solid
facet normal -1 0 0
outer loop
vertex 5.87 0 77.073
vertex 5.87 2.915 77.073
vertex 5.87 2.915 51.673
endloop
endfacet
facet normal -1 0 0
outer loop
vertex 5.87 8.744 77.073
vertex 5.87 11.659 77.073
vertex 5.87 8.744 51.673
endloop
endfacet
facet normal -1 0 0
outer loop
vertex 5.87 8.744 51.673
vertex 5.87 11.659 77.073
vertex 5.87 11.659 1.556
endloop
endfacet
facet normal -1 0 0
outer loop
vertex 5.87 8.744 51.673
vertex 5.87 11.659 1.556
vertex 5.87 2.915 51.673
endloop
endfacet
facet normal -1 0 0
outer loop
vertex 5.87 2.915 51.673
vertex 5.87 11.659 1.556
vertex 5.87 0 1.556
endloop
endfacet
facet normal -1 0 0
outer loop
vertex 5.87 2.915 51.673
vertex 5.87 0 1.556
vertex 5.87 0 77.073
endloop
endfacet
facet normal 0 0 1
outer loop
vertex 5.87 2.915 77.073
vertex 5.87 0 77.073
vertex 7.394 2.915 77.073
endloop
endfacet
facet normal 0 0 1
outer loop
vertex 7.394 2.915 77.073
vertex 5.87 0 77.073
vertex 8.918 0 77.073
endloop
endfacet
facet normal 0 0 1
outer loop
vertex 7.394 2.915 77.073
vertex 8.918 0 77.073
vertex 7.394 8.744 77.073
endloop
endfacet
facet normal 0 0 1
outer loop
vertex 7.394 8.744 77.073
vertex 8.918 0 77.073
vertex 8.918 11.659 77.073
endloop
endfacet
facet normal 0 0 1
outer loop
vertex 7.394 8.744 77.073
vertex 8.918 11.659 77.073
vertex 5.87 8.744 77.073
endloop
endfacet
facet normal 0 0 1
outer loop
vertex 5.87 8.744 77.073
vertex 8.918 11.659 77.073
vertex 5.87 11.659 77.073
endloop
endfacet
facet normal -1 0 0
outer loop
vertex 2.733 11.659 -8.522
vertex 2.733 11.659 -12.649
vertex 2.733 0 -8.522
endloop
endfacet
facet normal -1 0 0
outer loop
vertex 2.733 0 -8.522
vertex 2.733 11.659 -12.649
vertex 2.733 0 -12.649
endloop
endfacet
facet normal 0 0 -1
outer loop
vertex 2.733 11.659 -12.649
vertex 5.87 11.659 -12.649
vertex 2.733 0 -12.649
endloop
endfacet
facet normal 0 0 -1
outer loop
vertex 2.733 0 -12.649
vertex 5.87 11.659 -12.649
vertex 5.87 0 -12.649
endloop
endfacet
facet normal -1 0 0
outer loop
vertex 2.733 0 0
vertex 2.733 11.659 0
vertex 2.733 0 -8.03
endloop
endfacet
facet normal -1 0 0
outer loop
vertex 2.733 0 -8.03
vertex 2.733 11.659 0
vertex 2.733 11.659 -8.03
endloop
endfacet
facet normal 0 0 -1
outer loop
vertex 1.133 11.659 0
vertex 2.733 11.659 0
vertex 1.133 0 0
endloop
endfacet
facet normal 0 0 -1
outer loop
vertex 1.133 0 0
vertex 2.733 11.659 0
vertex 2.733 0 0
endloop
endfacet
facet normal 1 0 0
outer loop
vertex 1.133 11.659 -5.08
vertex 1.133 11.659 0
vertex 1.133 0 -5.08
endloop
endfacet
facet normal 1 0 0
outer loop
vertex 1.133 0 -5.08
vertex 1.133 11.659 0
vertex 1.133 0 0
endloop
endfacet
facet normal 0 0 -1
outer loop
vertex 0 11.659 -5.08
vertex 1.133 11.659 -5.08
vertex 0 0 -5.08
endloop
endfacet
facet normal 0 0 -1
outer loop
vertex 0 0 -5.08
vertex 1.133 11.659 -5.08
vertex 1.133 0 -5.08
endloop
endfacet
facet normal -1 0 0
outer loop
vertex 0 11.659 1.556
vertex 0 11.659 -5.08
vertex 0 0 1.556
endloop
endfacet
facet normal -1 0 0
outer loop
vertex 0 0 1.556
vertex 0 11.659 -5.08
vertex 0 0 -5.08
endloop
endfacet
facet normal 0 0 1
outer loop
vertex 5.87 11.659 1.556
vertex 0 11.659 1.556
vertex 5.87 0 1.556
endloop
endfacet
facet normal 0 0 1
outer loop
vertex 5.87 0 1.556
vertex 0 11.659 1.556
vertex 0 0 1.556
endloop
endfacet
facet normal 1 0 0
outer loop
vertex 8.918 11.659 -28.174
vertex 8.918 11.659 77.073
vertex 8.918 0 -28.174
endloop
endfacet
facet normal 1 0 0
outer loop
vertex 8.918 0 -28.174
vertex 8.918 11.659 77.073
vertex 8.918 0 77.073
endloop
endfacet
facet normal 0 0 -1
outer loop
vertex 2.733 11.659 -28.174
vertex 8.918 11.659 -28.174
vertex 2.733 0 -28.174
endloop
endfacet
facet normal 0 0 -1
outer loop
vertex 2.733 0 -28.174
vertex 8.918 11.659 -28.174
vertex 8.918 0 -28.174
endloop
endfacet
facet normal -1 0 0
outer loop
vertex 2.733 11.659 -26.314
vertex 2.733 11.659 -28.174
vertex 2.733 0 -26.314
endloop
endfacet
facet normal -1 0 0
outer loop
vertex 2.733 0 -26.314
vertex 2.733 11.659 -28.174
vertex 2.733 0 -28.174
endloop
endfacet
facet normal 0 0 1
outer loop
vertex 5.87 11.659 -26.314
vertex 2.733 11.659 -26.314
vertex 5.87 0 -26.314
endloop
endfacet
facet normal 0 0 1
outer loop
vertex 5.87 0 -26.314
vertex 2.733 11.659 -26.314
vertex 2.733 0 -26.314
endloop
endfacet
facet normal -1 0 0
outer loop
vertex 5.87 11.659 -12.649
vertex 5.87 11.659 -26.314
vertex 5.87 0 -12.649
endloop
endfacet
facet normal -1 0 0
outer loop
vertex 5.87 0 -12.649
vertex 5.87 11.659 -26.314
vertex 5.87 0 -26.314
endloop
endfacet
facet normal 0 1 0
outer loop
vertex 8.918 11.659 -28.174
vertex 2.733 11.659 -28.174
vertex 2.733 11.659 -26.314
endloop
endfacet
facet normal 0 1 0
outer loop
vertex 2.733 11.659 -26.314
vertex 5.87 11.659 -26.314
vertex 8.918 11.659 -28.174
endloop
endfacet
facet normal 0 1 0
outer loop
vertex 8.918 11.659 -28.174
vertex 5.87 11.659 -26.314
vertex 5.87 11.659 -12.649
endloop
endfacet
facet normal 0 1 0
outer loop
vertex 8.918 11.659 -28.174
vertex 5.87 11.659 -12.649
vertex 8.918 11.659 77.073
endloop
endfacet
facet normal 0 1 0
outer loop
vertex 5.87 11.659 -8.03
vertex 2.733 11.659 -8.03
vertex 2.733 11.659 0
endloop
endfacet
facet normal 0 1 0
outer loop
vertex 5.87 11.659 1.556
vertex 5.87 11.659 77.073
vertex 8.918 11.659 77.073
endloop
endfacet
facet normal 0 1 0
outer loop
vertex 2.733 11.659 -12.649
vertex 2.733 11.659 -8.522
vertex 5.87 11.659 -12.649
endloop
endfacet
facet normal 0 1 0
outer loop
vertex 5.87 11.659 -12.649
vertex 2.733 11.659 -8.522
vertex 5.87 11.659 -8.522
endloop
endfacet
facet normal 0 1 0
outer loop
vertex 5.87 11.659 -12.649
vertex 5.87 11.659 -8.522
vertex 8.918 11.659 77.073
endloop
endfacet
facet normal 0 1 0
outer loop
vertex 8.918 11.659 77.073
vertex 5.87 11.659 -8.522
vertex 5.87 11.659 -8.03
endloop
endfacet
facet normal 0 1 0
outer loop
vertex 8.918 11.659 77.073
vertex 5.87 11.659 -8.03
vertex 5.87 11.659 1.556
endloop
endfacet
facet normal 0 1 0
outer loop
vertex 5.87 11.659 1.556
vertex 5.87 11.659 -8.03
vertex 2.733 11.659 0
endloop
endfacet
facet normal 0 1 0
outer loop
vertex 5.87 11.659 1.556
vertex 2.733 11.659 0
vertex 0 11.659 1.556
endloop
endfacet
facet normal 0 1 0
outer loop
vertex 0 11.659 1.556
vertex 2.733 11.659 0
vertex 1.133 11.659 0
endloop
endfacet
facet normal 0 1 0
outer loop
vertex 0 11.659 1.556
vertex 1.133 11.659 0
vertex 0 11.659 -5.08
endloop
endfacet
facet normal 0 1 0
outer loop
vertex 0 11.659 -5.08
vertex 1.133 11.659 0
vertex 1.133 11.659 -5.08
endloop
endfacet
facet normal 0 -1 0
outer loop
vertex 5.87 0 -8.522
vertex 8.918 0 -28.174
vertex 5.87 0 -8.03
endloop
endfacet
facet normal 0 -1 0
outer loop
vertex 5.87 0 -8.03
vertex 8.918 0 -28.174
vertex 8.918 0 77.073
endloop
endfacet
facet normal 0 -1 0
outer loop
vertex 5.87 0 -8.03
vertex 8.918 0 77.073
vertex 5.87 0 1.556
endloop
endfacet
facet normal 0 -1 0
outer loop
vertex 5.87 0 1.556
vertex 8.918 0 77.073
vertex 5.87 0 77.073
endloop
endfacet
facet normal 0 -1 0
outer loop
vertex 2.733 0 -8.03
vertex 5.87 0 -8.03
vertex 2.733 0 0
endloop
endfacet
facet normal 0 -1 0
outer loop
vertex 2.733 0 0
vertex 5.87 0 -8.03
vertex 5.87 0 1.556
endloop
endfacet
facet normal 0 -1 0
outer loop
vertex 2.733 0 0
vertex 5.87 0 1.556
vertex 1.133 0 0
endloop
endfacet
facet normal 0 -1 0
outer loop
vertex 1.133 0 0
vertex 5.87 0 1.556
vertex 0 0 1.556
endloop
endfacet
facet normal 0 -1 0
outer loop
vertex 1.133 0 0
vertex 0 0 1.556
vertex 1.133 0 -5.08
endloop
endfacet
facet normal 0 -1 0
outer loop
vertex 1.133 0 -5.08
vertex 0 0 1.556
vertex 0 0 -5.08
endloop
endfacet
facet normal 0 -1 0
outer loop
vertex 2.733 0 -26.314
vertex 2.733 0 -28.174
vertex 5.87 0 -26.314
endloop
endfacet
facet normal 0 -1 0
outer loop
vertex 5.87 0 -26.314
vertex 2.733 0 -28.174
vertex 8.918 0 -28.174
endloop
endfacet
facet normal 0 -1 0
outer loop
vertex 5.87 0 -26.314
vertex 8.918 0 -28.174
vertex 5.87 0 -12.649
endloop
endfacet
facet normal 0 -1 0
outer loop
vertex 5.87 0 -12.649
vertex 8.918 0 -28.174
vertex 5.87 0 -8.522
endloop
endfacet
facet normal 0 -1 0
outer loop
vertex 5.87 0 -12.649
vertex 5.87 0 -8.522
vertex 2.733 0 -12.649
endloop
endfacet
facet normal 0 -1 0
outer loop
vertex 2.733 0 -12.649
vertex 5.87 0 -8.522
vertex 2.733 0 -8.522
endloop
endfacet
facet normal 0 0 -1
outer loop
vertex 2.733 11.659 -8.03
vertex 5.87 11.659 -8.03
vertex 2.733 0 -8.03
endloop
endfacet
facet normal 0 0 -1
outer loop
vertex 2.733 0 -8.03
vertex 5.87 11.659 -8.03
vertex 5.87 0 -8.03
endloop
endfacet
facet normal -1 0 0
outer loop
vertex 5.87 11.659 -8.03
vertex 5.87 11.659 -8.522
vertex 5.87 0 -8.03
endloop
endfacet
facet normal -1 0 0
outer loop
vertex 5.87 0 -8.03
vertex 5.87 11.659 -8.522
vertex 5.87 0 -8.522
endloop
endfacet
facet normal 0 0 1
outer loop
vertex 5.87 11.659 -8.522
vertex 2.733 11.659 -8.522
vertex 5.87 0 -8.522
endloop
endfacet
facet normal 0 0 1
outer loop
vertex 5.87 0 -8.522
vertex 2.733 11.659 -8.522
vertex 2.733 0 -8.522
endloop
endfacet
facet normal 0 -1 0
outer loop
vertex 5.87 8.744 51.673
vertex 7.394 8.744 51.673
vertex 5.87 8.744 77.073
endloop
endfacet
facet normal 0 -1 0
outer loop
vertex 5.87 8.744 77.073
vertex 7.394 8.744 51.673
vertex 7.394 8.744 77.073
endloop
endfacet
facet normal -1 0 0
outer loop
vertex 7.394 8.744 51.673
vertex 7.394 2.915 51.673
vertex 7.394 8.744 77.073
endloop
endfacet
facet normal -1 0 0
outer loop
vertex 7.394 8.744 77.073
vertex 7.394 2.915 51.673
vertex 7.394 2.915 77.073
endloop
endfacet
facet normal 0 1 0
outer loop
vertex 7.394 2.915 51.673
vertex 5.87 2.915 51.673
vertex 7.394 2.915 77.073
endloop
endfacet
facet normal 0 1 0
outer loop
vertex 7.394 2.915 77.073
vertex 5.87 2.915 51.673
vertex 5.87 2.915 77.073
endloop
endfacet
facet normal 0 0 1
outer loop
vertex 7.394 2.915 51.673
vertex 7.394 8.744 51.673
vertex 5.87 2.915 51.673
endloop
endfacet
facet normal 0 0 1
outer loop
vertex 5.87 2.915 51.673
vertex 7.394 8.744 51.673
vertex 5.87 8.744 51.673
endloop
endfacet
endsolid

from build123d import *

# Parameters (mm, degrees)
BOSS_EXTRUDE1_DEPTH = 11.6586
SKETCH2_5_W         = 3.1369
SKETCH2_5_H         = 0.491550165
CUT_EXTRUDE2_DEPTH  = 79.458628588
CUT_EXTRUDE4_START  = 77.0734
SKETCH3_W           = 1.524
SKETCH3_H           = 5.8293
CUT_EXTRUDE4_DEPTH  = 25.4


with BuildPart() as part:
    # Sketch2 → Boss-Extrude1 (new body)
    with BuildSketch(Plane(origin=(0, 0, 0), x_dir=(1, 0, 0), z_dir=(0, 1, 0))):
        Polygon((0, 5.08), (0, -1.556064247), (5.869646797, -1.556064247), (5.869646797, -77.07340022), (8.917646797, -77.07340022), (8.917646797, 28.173908926), (2.732746797, 28.173908926), (2.732746797, 26.3144), (5.869646797, 26.3144), (5.869646797, 12.6492), (2.732746797, 12.6492), (2.732746797, 0), (1.132546797, 0), (1.132546797, 5.08), align=None)
    extrude(amount=BOSS_EXTRUDE1_DEPTH)

    # Sketch2<5> → Cut-Extrude2 (cut, through all)
    with BuildSketch(Plane(origin=(0, 0, 0), x_dir=(1, 0, 0), z_dir=(0, 1, 0))):
        with Locations((4.301196797, 8.275924918)):
            Rectangle(SKETCH2_5_W, SKETCH2_5_H)
    extrude(amount=CUT_EXTRUDE2_DEPTH, mode=Mode.SUBTRACT)

    # Sketch3 → Cut-Extrude4 (cut)
    with BuildSketch(Plane.XY.offset(CUT_EXTRUDE4_START)):
        with Locations((6.631646797, 5.8293)):
            Rectangle(SKETCH3_W, SKETCH3_H)
    extrude(amount=-CUT_EXTRUDE4_DEPTH, mode=Mode.SUBTRACT)


solid = part.part
